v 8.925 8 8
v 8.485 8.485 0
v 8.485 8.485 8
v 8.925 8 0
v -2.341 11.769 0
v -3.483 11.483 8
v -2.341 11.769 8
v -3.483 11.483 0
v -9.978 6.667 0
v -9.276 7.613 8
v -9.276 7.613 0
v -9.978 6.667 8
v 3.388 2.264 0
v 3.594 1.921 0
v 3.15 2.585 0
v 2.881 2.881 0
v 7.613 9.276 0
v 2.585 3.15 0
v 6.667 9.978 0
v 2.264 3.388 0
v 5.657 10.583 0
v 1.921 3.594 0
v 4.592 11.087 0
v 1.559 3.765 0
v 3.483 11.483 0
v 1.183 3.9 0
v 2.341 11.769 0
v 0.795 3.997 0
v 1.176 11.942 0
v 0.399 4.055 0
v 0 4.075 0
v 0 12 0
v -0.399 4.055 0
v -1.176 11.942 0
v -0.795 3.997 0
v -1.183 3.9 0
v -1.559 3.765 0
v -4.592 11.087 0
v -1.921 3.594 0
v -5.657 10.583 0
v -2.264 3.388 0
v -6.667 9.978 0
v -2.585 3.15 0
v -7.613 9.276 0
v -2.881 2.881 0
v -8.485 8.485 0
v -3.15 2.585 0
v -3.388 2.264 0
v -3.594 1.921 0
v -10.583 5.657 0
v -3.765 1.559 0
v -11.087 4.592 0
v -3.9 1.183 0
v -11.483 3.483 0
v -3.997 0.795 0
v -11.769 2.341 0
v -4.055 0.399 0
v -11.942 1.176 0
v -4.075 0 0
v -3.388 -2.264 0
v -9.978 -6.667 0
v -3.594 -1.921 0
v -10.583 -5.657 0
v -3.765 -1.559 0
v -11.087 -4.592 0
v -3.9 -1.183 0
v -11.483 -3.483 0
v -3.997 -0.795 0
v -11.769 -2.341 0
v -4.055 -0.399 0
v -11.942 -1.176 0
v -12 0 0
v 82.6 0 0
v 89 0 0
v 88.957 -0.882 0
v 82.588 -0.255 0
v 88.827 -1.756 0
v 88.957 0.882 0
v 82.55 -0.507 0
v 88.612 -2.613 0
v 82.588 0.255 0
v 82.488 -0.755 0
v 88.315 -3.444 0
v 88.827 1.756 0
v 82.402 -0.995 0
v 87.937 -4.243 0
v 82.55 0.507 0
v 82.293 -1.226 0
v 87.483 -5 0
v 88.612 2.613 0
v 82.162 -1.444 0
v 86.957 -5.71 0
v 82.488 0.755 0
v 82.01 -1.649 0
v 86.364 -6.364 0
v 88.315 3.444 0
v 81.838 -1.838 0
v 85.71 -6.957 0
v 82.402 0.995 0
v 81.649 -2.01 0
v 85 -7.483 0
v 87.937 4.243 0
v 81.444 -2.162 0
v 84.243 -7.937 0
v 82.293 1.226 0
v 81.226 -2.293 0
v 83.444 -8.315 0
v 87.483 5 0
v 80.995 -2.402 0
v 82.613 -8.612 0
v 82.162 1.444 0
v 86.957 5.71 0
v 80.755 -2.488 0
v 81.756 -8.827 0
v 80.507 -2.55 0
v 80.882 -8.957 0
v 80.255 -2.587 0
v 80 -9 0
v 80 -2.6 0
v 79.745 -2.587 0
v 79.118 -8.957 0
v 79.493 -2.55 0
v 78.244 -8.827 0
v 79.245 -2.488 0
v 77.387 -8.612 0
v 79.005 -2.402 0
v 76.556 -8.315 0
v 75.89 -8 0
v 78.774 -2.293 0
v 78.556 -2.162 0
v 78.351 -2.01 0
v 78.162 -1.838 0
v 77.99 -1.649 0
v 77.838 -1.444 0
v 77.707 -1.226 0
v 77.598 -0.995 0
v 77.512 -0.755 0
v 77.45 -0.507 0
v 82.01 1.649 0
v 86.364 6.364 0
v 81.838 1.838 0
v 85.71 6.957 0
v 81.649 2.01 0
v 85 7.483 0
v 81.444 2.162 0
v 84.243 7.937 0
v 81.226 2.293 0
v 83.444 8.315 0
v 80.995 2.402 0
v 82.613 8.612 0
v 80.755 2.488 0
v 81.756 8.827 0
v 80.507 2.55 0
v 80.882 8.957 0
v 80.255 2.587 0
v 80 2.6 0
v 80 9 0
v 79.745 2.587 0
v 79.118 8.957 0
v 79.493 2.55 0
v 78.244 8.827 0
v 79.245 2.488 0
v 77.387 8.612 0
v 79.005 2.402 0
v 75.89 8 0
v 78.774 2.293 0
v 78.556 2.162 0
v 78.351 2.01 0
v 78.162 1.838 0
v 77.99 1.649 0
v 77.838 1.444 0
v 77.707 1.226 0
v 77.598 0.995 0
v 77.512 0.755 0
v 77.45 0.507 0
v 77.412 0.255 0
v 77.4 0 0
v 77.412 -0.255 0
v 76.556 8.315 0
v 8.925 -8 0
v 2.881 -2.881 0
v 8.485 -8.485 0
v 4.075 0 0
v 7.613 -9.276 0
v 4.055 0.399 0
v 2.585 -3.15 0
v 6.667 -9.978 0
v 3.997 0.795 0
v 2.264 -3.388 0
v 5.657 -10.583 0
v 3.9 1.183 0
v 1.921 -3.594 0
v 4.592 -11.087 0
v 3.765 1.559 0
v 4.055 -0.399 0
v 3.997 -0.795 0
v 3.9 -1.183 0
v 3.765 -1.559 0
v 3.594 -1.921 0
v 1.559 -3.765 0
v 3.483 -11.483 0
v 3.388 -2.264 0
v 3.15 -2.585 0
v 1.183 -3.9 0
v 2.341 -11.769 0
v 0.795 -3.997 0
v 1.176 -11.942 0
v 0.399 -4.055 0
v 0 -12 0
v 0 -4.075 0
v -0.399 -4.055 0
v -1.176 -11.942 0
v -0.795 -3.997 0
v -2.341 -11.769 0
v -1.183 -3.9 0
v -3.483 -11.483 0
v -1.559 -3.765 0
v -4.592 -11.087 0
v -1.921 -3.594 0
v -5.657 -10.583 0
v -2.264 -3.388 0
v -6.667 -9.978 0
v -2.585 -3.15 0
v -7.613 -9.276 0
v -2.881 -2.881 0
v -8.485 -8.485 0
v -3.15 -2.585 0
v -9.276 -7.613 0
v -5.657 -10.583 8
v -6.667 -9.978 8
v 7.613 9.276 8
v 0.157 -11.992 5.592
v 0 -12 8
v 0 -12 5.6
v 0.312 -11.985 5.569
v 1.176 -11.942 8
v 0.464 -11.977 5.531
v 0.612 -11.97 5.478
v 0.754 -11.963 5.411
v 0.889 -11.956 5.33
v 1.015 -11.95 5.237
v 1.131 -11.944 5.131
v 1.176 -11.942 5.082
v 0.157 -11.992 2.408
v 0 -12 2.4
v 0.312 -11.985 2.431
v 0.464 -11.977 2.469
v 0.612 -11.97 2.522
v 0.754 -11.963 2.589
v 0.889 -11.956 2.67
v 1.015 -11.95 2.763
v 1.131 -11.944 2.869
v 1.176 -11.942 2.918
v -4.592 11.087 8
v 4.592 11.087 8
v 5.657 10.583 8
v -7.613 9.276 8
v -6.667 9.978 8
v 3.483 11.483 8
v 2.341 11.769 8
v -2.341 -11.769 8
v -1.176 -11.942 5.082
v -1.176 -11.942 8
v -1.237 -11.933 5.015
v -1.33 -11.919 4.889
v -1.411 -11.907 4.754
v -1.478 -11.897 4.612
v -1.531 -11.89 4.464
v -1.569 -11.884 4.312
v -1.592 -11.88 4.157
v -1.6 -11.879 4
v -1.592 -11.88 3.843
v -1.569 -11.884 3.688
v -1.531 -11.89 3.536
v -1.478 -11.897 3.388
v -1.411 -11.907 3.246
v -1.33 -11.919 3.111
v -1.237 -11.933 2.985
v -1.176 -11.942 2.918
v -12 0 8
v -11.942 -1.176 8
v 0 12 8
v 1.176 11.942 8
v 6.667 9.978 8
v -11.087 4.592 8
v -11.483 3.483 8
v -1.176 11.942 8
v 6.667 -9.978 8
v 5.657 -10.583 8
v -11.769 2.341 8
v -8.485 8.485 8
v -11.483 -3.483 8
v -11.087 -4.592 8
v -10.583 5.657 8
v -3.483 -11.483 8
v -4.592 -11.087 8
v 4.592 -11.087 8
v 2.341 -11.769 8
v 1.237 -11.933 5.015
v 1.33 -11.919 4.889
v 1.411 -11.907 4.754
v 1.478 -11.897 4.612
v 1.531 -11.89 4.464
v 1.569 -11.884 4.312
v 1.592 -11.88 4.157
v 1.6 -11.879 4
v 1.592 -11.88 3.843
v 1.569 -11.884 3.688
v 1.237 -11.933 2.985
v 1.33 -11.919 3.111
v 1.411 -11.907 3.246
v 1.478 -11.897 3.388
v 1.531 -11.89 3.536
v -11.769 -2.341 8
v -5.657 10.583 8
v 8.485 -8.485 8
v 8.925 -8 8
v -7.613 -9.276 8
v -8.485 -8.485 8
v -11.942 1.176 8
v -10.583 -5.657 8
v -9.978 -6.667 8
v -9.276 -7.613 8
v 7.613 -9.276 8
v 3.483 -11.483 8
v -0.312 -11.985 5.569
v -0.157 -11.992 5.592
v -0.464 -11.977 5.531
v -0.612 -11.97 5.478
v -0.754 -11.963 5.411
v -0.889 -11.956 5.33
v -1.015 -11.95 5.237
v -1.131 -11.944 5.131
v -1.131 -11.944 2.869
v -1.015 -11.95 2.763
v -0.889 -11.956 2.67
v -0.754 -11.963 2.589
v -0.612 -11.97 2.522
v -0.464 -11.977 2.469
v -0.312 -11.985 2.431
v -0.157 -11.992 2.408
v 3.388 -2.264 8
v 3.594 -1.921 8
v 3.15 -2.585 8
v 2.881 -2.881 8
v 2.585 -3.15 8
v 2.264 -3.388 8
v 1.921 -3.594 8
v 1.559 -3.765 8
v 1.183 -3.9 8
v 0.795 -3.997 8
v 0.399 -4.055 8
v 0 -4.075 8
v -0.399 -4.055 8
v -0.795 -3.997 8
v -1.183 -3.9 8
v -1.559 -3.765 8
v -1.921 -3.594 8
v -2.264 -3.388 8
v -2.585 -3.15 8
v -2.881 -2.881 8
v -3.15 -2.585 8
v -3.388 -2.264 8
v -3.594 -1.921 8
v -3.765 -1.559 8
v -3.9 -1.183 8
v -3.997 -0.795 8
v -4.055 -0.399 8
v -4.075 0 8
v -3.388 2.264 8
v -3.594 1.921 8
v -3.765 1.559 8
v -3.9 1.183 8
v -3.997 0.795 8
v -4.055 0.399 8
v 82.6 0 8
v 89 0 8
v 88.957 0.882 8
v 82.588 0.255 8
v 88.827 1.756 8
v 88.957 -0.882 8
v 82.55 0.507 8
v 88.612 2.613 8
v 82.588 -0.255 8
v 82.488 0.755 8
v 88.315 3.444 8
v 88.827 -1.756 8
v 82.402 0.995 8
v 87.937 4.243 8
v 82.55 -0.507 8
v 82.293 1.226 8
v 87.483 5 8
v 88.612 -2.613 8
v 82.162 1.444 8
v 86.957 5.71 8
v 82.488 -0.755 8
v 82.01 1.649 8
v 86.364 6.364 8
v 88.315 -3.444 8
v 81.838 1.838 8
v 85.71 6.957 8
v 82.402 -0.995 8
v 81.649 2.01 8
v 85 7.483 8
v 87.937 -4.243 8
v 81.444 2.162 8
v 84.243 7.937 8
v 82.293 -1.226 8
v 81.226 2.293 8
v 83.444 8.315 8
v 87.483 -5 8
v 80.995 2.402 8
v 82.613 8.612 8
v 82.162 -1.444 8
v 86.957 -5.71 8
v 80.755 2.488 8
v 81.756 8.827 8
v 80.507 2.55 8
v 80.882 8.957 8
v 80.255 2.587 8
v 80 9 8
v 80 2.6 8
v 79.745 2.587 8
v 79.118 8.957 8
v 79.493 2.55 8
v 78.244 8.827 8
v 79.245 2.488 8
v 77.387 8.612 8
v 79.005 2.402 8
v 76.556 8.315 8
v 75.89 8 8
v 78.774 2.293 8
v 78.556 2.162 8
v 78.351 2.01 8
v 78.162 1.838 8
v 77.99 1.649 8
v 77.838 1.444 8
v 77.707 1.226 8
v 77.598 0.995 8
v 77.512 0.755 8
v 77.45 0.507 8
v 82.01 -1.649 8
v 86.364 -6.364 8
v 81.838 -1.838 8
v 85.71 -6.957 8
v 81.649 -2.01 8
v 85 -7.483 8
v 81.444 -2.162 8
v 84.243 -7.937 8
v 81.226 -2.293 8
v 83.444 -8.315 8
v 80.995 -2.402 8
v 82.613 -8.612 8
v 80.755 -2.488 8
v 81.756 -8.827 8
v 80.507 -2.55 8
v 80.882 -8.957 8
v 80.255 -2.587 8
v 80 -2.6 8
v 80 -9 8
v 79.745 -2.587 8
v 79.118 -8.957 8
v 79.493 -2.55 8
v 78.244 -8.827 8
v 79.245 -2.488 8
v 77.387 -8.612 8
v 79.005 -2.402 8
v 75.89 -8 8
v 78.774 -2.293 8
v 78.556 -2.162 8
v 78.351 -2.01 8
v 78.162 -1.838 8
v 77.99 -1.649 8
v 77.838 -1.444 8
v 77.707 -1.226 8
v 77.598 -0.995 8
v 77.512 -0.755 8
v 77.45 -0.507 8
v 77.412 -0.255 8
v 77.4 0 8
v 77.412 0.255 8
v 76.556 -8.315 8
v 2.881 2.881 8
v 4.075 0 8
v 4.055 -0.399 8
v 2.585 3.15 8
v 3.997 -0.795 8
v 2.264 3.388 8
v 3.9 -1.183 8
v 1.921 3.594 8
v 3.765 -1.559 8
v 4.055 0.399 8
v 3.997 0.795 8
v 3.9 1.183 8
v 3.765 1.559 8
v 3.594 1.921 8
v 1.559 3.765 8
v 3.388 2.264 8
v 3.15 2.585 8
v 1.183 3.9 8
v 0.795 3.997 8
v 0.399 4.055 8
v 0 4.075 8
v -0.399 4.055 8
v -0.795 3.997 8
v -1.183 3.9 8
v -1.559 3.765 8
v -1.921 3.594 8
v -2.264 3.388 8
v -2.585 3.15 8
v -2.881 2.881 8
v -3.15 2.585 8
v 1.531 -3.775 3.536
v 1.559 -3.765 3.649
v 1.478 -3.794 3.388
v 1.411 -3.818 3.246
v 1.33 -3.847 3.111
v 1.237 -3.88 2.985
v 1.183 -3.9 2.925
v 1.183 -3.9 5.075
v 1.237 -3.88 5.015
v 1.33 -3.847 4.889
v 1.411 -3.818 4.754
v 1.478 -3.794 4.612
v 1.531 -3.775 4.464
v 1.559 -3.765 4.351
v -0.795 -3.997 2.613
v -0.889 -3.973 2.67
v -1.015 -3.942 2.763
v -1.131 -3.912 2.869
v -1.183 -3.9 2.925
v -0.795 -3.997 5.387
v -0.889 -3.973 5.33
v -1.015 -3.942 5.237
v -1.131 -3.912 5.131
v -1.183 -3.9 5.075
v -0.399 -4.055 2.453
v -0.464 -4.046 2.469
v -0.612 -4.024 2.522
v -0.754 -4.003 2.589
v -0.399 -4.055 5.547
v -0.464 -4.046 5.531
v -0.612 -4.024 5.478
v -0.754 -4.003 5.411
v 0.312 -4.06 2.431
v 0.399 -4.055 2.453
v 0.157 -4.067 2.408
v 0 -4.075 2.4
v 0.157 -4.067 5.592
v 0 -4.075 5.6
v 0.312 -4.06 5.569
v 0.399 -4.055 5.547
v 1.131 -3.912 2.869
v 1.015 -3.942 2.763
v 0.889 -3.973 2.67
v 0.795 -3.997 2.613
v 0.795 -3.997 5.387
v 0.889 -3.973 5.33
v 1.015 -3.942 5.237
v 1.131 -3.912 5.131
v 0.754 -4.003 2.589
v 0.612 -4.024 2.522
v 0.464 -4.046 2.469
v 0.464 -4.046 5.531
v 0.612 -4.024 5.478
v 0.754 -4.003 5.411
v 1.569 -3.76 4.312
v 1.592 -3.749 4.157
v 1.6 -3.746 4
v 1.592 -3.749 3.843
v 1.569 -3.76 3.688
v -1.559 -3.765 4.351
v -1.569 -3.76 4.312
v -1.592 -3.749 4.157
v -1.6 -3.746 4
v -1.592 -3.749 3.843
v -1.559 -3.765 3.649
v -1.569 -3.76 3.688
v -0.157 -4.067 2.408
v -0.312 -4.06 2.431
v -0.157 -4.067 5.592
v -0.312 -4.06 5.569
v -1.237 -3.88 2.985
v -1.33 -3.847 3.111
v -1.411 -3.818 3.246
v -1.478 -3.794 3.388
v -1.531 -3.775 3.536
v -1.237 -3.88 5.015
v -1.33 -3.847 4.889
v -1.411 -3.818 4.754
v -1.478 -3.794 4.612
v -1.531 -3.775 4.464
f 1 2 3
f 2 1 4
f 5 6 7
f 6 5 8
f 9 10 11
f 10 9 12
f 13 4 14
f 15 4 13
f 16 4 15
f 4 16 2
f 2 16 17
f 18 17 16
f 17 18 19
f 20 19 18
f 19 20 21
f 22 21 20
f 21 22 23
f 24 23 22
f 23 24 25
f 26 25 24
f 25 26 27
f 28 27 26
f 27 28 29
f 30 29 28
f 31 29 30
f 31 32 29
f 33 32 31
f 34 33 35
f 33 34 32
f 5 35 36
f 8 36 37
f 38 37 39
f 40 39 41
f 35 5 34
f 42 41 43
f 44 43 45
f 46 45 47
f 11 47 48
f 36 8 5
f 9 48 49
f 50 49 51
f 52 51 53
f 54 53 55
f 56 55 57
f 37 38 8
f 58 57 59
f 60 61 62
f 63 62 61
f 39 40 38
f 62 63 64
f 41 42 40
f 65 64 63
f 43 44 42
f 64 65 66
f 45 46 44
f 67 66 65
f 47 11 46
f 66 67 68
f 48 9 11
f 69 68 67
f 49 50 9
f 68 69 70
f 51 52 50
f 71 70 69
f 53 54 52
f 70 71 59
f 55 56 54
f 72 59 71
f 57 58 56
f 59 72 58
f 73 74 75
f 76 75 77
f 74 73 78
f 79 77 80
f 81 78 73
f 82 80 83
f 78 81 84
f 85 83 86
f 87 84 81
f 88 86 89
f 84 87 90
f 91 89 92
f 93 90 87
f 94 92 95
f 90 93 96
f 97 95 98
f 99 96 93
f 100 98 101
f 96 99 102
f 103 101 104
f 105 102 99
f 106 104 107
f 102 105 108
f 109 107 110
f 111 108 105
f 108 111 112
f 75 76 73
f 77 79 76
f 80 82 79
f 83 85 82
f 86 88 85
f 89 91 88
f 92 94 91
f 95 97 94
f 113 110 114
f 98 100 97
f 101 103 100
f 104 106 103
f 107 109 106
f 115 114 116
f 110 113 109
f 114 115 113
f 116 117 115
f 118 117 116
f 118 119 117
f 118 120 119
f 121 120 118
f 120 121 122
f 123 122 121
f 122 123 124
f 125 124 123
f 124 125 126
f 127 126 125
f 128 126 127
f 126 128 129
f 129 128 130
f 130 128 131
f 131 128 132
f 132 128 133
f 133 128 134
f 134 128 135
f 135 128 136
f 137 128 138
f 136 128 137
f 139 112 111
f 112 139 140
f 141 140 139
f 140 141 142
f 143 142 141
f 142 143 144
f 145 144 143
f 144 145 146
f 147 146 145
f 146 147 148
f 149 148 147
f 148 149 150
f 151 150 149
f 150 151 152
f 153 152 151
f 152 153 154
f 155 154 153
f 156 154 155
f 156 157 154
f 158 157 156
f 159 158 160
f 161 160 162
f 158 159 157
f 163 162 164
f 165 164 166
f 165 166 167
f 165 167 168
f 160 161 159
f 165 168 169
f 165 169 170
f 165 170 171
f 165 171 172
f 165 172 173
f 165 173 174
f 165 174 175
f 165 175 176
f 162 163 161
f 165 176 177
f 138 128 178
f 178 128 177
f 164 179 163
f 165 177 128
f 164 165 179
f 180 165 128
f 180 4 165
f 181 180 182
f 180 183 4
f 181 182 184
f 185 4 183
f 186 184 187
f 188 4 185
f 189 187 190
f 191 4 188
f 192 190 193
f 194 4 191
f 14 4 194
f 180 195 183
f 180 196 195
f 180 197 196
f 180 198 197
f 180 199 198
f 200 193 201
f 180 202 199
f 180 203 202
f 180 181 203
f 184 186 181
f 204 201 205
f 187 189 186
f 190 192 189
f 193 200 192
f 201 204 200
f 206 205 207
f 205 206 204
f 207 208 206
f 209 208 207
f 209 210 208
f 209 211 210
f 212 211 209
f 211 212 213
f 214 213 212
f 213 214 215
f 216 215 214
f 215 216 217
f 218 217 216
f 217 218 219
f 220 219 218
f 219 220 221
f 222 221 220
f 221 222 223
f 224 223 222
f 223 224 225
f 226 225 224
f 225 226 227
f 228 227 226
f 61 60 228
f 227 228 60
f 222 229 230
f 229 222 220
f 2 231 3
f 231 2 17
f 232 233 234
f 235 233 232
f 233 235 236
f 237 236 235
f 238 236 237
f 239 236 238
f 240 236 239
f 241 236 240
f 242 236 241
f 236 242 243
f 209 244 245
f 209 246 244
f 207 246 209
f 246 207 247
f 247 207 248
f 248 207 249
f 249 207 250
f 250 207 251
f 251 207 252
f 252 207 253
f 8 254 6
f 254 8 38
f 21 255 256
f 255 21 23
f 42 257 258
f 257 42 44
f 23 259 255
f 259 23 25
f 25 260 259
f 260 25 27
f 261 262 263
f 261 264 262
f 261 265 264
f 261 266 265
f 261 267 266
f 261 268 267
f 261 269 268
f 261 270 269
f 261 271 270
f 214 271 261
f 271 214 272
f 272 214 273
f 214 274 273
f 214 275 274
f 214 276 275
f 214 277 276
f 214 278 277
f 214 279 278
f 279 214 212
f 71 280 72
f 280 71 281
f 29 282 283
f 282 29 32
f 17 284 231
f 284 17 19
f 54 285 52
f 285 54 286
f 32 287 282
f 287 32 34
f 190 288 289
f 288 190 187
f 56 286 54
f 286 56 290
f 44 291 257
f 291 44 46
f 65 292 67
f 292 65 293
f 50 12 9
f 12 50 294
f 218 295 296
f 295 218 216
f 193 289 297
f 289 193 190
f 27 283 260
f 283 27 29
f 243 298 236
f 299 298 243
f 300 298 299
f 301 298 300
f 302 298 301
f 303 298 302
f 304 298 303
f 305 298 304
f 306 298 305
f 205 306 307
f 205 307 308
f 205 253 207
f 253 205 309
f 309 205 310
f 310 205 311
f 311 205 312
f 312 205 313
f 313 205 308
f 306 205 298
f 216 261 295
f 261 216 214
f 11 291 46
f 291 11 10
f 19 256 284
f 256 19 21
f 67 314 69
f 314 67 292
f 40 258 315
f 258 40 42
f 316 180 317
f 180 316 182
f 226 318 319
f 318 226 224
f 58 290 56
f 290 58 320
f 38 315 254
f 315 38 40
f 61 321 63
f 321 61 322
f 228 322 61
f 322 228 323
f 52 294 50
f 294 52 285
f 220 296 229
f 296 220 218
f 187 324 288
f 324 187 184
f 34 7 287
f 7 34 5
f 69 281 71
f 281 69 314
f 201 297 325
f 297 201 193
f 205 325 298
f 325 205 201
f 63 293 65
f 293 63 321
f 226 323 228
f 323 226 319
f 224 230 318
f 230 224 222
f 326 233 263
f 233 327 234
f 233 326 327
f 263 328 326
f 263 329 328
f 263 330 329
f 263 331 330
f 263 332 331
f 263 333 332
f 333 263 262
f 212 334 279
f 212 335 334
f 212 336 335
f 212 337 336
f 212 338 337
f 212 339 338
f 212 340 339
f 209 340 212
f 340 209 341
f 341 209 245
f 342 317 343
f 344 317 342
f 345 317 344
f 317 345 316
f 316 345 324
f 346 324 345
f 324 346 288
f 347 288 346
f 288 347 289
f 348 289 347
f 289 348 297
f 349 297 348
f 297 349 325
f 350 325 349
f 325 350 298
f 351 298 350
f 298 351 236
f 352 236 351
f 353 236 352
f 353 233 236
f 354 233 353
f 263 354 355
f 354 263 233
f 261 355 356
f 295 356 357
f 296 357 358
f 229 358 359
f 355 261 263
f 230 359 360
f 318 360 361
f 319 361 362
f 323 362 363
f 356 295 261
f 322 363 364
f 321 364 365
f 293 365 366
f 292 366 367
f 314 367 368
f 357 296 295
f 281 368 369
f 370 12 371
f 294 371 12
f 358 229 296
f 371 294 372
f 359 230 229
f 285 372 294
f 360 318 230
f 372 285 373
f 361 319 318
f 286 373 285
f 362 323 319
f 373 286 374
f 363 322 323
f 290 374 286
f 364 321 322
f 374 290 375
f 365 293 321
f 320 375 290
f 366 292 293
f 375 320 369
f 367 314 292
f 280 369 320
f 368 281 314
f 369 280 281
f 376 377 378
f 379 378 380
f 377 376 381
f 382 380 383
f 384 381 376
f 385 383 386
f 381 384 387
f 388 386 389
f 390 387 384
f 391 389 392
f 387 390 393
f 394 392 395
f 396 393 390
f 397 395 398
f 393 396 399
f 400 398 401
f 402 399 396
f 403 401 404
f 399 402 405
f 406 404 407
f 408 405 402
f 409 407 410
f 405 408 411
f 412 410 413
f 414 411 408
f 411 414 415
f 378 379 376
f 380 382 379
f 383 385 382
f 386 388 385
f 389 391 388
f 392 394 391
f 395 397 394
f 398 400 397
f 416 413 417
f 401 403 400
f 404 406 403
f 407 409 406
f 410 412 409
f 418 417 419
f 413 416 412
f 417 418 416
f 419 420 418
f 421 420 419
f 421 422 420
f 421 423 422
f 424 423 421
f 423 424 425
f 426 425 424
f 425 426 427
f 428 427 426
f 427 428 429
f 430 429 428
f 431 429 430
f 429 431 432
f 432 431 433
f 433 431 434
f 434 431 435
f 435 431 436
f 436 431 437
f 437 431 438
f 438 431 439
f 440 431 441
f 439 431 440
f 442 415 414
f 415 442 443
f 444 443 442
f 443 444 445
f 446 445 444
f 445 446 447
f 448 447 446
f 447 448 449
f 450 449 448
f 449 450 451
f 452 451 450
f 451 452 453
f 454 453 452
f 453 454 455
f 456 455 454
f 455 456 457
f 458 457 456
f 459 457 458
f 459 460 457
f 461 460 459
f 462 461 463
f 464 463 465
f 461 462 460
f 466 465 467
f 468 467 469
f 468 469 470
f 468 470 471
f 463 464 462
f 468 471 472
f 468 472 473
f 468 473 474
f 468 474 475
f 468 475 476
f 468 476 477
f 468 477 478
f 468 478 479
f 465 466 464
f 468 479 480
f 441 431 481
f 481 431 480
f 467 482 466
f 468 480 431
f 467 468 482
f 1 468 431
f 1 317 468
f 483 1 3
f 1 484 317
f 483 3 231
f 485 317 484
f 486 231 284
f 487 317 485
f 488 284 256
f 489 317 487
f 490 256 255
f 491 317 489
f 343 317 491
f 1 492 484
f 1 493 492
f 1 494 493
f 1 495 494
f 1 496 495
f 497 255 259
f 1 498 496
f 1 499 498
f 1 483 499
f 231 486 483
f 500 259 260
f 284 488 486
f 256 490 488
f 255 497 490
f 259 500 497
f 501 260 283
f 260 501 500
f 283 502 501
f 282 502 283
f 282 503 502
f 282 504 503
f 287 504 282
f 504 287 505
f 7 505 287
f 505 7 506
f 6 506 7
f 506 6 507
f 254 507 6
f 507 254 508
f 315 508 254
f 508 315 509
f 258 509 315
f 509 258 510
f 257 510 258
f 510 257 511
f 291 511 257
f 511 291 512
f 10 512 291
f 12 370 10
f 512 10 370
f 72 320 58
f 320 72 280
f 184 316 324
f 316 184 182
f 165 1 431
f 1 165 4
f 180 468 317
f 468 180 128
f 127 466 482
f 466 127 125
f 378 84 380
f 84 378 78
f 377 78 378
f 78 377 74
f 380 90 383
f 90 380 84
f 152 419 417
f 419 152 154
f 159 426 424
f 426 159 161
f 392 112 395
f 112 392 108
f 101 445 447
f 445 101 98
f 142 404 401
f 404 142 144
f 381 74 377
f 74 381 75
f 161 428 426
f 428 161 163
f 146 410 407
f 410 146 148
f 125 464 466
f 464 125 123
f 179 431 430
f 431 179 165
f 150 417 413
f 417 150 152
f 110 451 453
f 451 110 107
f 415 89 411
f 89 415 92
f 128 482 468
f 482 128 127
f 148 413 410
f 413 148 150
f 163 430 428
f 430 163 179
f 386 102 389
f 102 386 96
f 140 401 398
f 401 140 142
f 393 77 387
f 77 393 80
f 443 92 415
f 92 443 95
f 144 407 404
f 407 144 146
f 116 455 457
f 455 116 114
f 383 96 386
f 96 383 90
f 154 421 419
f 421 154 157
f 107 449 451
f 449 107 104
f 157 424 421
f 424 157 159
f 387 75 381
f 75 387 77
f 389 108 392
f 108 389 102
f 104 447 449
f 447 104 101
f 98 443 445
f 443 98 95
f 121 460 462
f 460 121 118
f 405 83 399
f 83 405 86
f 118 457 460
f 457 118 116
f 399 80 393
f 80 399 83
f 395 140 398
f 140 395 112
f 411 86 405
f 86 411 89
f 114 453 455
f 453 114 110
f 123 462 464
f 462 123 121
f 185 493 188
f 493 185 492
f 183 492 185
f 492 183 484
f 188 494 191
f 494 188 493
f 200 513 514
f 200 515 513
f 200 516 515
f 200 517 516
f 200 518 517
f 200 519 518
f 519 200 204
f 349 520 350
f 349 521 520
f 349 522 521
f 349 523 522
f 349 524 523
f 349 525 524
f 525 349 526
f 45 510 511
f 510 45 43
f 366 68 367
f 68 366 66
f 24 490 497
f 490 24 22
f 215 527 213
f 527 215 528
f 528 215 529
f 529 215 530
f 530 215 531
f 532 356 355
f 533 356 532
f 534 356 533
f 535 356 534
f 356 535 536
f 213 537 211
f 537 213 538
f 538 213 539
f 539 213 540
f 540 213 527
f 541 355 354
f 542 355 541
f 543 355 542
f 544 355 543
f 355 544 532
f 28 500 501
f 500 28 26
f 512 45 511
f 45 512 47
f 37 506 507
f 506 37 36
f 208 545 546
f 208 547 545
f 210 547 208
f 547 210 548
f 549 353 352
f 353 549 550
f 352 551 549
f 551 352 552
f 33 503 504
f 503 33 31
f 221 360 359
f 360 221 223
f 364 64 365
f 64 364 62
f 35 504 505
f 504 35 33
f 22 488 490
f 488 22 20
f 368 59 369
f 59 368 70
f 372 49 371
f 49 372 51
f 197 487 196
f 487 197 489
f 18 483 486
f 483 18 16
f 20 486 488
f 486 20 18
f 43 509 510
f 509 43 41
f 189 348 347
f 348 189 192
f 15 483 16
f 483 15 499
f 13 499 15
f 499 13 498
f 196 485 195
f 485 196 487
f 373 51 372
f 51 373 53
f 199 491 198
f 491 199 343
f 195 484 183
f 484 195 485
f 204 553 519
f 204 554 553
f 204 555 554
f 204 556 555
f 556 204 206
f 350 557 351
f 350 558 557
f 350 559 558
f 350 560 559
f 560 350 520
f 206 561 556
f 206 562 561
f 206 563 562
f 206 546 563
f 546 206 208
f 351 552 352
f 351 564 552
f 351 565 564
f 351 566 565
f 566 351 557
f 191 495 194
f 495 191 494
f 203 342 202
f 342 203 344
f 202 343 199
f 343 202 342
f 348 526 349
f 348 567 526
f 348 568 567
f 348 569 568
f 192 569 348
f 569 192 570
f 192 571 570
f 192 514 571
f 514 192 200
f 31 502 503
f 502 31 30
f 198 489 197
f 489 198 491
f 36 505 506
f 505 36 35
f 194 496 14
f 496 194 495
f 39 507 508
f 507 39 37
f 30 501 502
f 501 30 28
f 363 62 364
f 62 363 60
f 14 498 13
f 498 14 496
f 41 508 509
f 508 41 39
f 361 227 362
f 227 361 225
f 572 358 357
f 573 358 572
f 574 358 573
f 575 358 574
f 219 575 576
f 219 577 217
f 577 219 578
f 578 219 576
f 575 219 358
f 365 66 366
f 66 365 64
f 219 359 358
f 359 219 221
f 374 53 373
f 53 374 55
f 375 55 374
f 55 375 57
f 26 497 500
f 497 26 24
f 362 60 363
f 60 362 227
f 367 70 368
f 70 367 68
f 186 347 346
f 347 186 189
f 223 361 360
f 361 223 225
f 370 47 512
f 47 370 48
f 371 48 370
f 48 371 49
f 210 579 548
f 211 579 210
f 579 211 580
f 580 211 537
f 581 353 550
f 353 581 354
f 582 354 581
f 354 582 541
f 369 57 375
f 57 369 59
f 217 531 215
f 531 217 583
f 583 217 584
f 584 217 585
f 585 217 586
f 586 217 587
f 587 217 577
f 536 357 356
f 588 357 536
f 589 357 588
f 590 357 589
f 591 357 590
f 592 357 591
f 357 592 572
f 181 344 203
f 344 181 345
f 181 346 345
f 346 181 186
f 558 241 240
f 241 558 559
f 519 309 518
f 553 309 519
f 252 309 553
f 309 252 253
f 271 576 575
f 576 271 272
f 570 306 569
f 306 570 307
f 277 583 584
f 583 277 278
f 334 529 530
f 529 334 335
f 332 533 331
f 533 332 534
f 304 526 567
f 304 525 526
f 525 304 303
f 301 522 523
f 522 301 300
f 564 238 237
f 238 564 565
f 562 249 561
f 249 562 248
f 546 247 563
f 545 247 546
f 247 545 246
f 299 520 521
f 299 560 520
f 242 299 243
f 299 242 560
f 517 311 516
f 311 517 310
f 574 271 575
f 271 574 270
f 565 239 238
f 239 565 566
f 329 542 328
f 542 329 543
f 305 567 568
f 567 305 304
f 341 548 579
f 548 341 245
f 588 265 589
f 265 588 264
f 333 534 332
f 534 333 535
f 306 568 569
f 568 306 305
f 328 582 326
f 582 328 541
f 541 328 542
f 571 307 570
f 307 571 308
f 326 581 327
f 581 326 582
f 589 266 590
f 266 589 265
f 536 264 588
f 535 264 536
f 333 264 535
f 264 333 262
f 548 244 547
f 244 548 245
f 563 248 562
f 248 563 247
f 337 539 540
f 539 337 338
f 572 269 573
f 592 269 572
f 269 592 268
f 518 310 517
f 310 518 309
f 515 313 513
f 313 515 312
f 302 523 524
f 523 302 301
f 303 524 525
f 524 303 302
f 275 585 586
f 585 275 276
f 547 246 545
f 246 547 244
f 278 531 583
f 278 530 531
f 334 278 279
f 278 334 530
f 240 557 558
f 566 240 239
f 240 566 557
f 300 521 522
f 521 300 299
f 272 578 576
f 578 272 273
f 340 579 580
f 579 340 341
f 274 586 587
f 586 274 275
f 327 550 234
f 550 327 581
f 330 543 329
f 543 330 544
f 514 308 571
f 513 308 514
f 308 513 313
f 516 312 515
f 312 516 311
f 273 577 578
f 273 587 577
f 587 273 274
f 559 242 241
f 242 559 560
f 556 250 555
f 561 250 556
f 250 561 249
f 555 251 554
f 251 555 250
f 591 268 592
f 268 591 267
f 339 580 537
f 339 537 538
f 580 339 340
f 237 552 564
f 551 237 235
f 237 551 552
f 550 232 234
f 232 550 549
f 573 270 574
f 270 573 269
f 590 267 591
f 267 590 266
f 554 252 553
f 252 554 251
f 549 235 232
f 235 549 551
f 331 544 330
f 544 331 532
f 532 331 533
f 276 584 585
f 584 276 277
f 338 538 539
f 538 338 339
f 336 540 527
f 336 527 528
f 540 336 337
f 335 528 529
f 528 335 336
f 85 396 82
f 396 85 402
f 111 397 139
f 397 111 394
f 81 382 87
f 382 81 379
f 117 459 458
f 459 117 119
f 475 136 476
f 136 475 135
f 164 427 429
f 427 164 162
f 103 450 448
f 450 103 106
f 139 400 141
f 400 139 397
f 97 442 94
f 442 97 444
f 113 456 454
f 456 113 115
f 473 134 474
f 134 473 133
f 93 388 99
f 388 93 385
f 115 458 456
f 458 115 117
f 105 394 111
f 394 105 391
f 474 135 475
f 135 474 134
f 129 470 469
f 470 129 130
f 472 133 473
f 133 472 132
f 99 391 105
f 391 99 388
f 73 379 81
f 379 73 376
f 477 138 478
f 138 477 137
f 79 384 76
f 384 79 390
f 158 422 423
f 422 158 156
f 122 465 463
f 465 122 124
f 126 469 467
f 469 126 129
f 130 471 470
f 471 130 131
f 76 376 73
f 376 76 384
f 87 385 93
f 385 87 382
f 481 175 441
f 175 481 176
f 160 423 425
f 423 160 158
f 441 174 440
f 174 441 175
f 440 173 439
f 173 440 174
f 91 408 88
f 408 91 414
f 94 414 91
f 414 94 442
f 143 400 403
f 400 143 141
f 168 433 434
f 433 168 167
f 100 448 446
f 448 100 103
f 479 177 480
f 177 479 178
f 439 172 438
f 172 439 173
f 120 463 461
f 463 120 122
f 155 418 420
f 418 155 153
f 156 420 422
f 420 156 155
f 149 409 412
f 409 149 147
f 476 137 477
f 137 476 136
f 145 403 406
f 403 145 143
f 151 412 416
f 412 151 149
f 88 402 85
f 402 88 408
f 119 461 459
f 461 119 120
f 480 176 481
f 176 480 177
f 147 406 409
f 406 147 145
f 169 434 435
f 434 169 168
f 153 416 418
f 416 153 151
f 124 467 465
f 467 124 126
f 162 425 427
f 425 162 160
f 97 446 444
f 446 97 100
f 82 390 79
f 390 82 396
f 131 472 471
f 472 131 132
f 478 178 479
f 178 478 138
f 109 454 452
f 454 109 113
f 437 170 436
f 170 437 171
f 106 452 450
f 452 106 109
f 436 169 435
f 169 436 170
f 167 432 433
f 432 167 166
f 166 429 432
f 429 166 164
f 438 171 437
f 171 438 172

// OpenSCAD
// file: parameters.scad
// AFPM-Desk-v1 shared parameters (mm)
// Desktop axial-flux PM learning generator — Faraday induction education only.

$fn = 64;

// --- Magnets (N42 Neo discs) ---
magnet_d = 20;
magnet_h = 3;
magnet_count = 8;
magnet_pcd = 70; // pitch circle diameter

// --- Rotor ---
rotor_od = 100;
rotor_id = 12; // shaft clearance / hub seat
rotor_thickness = 6;
magnet_pocket_clearance = 0.3;
magnet_pocket_depth = magnet_h + 0.2;

// --- Stator ---
stator_od = 110;
stator_id = 30;
stator_thickness = 8;
coil_count = 6;
coil_slot_w = 22;
coil_slot_h = 18;
coil_slot_depth = 6;
coil_pcd = 70;

// --- Shaft / bearings ---
shaft_d = 8;
bearing_od = 22; // 608 skate bearing
bearing_id = 8;
bearing_h = 7;
bearing_seat_od = bearing_od + 0.2;

// --- Base ---
base_w = 160;
base_d = 140;
base_h = 8;
post_h = 55;

// --- Crank ---
crank_arm_len = 80;
crank_arm_w = 16;
crank_arm_t = 8;
handle_d = 12;
handle_len = 40;

// --- Electronics tray ---
tray_w = 70;
tray_d = 50;
tray_h = 12;
// main file
include <parameters.scad>

module hand_crank() {
  difference() {
    union() {
      // hub
      cylinder(h=crank_arm_t, d=24);
      // arm
      translate([0, -crank_arm_w/2, 0])
        cube([crank_arm_len, crank_arm_w, crank_arm_t]);
      // handle boss
      translate([crank_arm_len, 0, 0])
        cylinder(h=crank_arm_t, d=18);
    }
    // shaft bore
    translate([0,0,-0.1])
      cylinder(h=crank_arm_t+0.2, d=shaft_d + 0.15);
    // M3 set screw
    translate([0,0,crank_arm_t/2])
      rotate([90,0,0])
        cylinder(h=20, d=3.2);
    // handle axle hole
    translate([crank_arm_len, 0, -0.1])
      cylinder(h=crank_arm_t+0.2, d=5.2);
  }
}

hand_crank();
